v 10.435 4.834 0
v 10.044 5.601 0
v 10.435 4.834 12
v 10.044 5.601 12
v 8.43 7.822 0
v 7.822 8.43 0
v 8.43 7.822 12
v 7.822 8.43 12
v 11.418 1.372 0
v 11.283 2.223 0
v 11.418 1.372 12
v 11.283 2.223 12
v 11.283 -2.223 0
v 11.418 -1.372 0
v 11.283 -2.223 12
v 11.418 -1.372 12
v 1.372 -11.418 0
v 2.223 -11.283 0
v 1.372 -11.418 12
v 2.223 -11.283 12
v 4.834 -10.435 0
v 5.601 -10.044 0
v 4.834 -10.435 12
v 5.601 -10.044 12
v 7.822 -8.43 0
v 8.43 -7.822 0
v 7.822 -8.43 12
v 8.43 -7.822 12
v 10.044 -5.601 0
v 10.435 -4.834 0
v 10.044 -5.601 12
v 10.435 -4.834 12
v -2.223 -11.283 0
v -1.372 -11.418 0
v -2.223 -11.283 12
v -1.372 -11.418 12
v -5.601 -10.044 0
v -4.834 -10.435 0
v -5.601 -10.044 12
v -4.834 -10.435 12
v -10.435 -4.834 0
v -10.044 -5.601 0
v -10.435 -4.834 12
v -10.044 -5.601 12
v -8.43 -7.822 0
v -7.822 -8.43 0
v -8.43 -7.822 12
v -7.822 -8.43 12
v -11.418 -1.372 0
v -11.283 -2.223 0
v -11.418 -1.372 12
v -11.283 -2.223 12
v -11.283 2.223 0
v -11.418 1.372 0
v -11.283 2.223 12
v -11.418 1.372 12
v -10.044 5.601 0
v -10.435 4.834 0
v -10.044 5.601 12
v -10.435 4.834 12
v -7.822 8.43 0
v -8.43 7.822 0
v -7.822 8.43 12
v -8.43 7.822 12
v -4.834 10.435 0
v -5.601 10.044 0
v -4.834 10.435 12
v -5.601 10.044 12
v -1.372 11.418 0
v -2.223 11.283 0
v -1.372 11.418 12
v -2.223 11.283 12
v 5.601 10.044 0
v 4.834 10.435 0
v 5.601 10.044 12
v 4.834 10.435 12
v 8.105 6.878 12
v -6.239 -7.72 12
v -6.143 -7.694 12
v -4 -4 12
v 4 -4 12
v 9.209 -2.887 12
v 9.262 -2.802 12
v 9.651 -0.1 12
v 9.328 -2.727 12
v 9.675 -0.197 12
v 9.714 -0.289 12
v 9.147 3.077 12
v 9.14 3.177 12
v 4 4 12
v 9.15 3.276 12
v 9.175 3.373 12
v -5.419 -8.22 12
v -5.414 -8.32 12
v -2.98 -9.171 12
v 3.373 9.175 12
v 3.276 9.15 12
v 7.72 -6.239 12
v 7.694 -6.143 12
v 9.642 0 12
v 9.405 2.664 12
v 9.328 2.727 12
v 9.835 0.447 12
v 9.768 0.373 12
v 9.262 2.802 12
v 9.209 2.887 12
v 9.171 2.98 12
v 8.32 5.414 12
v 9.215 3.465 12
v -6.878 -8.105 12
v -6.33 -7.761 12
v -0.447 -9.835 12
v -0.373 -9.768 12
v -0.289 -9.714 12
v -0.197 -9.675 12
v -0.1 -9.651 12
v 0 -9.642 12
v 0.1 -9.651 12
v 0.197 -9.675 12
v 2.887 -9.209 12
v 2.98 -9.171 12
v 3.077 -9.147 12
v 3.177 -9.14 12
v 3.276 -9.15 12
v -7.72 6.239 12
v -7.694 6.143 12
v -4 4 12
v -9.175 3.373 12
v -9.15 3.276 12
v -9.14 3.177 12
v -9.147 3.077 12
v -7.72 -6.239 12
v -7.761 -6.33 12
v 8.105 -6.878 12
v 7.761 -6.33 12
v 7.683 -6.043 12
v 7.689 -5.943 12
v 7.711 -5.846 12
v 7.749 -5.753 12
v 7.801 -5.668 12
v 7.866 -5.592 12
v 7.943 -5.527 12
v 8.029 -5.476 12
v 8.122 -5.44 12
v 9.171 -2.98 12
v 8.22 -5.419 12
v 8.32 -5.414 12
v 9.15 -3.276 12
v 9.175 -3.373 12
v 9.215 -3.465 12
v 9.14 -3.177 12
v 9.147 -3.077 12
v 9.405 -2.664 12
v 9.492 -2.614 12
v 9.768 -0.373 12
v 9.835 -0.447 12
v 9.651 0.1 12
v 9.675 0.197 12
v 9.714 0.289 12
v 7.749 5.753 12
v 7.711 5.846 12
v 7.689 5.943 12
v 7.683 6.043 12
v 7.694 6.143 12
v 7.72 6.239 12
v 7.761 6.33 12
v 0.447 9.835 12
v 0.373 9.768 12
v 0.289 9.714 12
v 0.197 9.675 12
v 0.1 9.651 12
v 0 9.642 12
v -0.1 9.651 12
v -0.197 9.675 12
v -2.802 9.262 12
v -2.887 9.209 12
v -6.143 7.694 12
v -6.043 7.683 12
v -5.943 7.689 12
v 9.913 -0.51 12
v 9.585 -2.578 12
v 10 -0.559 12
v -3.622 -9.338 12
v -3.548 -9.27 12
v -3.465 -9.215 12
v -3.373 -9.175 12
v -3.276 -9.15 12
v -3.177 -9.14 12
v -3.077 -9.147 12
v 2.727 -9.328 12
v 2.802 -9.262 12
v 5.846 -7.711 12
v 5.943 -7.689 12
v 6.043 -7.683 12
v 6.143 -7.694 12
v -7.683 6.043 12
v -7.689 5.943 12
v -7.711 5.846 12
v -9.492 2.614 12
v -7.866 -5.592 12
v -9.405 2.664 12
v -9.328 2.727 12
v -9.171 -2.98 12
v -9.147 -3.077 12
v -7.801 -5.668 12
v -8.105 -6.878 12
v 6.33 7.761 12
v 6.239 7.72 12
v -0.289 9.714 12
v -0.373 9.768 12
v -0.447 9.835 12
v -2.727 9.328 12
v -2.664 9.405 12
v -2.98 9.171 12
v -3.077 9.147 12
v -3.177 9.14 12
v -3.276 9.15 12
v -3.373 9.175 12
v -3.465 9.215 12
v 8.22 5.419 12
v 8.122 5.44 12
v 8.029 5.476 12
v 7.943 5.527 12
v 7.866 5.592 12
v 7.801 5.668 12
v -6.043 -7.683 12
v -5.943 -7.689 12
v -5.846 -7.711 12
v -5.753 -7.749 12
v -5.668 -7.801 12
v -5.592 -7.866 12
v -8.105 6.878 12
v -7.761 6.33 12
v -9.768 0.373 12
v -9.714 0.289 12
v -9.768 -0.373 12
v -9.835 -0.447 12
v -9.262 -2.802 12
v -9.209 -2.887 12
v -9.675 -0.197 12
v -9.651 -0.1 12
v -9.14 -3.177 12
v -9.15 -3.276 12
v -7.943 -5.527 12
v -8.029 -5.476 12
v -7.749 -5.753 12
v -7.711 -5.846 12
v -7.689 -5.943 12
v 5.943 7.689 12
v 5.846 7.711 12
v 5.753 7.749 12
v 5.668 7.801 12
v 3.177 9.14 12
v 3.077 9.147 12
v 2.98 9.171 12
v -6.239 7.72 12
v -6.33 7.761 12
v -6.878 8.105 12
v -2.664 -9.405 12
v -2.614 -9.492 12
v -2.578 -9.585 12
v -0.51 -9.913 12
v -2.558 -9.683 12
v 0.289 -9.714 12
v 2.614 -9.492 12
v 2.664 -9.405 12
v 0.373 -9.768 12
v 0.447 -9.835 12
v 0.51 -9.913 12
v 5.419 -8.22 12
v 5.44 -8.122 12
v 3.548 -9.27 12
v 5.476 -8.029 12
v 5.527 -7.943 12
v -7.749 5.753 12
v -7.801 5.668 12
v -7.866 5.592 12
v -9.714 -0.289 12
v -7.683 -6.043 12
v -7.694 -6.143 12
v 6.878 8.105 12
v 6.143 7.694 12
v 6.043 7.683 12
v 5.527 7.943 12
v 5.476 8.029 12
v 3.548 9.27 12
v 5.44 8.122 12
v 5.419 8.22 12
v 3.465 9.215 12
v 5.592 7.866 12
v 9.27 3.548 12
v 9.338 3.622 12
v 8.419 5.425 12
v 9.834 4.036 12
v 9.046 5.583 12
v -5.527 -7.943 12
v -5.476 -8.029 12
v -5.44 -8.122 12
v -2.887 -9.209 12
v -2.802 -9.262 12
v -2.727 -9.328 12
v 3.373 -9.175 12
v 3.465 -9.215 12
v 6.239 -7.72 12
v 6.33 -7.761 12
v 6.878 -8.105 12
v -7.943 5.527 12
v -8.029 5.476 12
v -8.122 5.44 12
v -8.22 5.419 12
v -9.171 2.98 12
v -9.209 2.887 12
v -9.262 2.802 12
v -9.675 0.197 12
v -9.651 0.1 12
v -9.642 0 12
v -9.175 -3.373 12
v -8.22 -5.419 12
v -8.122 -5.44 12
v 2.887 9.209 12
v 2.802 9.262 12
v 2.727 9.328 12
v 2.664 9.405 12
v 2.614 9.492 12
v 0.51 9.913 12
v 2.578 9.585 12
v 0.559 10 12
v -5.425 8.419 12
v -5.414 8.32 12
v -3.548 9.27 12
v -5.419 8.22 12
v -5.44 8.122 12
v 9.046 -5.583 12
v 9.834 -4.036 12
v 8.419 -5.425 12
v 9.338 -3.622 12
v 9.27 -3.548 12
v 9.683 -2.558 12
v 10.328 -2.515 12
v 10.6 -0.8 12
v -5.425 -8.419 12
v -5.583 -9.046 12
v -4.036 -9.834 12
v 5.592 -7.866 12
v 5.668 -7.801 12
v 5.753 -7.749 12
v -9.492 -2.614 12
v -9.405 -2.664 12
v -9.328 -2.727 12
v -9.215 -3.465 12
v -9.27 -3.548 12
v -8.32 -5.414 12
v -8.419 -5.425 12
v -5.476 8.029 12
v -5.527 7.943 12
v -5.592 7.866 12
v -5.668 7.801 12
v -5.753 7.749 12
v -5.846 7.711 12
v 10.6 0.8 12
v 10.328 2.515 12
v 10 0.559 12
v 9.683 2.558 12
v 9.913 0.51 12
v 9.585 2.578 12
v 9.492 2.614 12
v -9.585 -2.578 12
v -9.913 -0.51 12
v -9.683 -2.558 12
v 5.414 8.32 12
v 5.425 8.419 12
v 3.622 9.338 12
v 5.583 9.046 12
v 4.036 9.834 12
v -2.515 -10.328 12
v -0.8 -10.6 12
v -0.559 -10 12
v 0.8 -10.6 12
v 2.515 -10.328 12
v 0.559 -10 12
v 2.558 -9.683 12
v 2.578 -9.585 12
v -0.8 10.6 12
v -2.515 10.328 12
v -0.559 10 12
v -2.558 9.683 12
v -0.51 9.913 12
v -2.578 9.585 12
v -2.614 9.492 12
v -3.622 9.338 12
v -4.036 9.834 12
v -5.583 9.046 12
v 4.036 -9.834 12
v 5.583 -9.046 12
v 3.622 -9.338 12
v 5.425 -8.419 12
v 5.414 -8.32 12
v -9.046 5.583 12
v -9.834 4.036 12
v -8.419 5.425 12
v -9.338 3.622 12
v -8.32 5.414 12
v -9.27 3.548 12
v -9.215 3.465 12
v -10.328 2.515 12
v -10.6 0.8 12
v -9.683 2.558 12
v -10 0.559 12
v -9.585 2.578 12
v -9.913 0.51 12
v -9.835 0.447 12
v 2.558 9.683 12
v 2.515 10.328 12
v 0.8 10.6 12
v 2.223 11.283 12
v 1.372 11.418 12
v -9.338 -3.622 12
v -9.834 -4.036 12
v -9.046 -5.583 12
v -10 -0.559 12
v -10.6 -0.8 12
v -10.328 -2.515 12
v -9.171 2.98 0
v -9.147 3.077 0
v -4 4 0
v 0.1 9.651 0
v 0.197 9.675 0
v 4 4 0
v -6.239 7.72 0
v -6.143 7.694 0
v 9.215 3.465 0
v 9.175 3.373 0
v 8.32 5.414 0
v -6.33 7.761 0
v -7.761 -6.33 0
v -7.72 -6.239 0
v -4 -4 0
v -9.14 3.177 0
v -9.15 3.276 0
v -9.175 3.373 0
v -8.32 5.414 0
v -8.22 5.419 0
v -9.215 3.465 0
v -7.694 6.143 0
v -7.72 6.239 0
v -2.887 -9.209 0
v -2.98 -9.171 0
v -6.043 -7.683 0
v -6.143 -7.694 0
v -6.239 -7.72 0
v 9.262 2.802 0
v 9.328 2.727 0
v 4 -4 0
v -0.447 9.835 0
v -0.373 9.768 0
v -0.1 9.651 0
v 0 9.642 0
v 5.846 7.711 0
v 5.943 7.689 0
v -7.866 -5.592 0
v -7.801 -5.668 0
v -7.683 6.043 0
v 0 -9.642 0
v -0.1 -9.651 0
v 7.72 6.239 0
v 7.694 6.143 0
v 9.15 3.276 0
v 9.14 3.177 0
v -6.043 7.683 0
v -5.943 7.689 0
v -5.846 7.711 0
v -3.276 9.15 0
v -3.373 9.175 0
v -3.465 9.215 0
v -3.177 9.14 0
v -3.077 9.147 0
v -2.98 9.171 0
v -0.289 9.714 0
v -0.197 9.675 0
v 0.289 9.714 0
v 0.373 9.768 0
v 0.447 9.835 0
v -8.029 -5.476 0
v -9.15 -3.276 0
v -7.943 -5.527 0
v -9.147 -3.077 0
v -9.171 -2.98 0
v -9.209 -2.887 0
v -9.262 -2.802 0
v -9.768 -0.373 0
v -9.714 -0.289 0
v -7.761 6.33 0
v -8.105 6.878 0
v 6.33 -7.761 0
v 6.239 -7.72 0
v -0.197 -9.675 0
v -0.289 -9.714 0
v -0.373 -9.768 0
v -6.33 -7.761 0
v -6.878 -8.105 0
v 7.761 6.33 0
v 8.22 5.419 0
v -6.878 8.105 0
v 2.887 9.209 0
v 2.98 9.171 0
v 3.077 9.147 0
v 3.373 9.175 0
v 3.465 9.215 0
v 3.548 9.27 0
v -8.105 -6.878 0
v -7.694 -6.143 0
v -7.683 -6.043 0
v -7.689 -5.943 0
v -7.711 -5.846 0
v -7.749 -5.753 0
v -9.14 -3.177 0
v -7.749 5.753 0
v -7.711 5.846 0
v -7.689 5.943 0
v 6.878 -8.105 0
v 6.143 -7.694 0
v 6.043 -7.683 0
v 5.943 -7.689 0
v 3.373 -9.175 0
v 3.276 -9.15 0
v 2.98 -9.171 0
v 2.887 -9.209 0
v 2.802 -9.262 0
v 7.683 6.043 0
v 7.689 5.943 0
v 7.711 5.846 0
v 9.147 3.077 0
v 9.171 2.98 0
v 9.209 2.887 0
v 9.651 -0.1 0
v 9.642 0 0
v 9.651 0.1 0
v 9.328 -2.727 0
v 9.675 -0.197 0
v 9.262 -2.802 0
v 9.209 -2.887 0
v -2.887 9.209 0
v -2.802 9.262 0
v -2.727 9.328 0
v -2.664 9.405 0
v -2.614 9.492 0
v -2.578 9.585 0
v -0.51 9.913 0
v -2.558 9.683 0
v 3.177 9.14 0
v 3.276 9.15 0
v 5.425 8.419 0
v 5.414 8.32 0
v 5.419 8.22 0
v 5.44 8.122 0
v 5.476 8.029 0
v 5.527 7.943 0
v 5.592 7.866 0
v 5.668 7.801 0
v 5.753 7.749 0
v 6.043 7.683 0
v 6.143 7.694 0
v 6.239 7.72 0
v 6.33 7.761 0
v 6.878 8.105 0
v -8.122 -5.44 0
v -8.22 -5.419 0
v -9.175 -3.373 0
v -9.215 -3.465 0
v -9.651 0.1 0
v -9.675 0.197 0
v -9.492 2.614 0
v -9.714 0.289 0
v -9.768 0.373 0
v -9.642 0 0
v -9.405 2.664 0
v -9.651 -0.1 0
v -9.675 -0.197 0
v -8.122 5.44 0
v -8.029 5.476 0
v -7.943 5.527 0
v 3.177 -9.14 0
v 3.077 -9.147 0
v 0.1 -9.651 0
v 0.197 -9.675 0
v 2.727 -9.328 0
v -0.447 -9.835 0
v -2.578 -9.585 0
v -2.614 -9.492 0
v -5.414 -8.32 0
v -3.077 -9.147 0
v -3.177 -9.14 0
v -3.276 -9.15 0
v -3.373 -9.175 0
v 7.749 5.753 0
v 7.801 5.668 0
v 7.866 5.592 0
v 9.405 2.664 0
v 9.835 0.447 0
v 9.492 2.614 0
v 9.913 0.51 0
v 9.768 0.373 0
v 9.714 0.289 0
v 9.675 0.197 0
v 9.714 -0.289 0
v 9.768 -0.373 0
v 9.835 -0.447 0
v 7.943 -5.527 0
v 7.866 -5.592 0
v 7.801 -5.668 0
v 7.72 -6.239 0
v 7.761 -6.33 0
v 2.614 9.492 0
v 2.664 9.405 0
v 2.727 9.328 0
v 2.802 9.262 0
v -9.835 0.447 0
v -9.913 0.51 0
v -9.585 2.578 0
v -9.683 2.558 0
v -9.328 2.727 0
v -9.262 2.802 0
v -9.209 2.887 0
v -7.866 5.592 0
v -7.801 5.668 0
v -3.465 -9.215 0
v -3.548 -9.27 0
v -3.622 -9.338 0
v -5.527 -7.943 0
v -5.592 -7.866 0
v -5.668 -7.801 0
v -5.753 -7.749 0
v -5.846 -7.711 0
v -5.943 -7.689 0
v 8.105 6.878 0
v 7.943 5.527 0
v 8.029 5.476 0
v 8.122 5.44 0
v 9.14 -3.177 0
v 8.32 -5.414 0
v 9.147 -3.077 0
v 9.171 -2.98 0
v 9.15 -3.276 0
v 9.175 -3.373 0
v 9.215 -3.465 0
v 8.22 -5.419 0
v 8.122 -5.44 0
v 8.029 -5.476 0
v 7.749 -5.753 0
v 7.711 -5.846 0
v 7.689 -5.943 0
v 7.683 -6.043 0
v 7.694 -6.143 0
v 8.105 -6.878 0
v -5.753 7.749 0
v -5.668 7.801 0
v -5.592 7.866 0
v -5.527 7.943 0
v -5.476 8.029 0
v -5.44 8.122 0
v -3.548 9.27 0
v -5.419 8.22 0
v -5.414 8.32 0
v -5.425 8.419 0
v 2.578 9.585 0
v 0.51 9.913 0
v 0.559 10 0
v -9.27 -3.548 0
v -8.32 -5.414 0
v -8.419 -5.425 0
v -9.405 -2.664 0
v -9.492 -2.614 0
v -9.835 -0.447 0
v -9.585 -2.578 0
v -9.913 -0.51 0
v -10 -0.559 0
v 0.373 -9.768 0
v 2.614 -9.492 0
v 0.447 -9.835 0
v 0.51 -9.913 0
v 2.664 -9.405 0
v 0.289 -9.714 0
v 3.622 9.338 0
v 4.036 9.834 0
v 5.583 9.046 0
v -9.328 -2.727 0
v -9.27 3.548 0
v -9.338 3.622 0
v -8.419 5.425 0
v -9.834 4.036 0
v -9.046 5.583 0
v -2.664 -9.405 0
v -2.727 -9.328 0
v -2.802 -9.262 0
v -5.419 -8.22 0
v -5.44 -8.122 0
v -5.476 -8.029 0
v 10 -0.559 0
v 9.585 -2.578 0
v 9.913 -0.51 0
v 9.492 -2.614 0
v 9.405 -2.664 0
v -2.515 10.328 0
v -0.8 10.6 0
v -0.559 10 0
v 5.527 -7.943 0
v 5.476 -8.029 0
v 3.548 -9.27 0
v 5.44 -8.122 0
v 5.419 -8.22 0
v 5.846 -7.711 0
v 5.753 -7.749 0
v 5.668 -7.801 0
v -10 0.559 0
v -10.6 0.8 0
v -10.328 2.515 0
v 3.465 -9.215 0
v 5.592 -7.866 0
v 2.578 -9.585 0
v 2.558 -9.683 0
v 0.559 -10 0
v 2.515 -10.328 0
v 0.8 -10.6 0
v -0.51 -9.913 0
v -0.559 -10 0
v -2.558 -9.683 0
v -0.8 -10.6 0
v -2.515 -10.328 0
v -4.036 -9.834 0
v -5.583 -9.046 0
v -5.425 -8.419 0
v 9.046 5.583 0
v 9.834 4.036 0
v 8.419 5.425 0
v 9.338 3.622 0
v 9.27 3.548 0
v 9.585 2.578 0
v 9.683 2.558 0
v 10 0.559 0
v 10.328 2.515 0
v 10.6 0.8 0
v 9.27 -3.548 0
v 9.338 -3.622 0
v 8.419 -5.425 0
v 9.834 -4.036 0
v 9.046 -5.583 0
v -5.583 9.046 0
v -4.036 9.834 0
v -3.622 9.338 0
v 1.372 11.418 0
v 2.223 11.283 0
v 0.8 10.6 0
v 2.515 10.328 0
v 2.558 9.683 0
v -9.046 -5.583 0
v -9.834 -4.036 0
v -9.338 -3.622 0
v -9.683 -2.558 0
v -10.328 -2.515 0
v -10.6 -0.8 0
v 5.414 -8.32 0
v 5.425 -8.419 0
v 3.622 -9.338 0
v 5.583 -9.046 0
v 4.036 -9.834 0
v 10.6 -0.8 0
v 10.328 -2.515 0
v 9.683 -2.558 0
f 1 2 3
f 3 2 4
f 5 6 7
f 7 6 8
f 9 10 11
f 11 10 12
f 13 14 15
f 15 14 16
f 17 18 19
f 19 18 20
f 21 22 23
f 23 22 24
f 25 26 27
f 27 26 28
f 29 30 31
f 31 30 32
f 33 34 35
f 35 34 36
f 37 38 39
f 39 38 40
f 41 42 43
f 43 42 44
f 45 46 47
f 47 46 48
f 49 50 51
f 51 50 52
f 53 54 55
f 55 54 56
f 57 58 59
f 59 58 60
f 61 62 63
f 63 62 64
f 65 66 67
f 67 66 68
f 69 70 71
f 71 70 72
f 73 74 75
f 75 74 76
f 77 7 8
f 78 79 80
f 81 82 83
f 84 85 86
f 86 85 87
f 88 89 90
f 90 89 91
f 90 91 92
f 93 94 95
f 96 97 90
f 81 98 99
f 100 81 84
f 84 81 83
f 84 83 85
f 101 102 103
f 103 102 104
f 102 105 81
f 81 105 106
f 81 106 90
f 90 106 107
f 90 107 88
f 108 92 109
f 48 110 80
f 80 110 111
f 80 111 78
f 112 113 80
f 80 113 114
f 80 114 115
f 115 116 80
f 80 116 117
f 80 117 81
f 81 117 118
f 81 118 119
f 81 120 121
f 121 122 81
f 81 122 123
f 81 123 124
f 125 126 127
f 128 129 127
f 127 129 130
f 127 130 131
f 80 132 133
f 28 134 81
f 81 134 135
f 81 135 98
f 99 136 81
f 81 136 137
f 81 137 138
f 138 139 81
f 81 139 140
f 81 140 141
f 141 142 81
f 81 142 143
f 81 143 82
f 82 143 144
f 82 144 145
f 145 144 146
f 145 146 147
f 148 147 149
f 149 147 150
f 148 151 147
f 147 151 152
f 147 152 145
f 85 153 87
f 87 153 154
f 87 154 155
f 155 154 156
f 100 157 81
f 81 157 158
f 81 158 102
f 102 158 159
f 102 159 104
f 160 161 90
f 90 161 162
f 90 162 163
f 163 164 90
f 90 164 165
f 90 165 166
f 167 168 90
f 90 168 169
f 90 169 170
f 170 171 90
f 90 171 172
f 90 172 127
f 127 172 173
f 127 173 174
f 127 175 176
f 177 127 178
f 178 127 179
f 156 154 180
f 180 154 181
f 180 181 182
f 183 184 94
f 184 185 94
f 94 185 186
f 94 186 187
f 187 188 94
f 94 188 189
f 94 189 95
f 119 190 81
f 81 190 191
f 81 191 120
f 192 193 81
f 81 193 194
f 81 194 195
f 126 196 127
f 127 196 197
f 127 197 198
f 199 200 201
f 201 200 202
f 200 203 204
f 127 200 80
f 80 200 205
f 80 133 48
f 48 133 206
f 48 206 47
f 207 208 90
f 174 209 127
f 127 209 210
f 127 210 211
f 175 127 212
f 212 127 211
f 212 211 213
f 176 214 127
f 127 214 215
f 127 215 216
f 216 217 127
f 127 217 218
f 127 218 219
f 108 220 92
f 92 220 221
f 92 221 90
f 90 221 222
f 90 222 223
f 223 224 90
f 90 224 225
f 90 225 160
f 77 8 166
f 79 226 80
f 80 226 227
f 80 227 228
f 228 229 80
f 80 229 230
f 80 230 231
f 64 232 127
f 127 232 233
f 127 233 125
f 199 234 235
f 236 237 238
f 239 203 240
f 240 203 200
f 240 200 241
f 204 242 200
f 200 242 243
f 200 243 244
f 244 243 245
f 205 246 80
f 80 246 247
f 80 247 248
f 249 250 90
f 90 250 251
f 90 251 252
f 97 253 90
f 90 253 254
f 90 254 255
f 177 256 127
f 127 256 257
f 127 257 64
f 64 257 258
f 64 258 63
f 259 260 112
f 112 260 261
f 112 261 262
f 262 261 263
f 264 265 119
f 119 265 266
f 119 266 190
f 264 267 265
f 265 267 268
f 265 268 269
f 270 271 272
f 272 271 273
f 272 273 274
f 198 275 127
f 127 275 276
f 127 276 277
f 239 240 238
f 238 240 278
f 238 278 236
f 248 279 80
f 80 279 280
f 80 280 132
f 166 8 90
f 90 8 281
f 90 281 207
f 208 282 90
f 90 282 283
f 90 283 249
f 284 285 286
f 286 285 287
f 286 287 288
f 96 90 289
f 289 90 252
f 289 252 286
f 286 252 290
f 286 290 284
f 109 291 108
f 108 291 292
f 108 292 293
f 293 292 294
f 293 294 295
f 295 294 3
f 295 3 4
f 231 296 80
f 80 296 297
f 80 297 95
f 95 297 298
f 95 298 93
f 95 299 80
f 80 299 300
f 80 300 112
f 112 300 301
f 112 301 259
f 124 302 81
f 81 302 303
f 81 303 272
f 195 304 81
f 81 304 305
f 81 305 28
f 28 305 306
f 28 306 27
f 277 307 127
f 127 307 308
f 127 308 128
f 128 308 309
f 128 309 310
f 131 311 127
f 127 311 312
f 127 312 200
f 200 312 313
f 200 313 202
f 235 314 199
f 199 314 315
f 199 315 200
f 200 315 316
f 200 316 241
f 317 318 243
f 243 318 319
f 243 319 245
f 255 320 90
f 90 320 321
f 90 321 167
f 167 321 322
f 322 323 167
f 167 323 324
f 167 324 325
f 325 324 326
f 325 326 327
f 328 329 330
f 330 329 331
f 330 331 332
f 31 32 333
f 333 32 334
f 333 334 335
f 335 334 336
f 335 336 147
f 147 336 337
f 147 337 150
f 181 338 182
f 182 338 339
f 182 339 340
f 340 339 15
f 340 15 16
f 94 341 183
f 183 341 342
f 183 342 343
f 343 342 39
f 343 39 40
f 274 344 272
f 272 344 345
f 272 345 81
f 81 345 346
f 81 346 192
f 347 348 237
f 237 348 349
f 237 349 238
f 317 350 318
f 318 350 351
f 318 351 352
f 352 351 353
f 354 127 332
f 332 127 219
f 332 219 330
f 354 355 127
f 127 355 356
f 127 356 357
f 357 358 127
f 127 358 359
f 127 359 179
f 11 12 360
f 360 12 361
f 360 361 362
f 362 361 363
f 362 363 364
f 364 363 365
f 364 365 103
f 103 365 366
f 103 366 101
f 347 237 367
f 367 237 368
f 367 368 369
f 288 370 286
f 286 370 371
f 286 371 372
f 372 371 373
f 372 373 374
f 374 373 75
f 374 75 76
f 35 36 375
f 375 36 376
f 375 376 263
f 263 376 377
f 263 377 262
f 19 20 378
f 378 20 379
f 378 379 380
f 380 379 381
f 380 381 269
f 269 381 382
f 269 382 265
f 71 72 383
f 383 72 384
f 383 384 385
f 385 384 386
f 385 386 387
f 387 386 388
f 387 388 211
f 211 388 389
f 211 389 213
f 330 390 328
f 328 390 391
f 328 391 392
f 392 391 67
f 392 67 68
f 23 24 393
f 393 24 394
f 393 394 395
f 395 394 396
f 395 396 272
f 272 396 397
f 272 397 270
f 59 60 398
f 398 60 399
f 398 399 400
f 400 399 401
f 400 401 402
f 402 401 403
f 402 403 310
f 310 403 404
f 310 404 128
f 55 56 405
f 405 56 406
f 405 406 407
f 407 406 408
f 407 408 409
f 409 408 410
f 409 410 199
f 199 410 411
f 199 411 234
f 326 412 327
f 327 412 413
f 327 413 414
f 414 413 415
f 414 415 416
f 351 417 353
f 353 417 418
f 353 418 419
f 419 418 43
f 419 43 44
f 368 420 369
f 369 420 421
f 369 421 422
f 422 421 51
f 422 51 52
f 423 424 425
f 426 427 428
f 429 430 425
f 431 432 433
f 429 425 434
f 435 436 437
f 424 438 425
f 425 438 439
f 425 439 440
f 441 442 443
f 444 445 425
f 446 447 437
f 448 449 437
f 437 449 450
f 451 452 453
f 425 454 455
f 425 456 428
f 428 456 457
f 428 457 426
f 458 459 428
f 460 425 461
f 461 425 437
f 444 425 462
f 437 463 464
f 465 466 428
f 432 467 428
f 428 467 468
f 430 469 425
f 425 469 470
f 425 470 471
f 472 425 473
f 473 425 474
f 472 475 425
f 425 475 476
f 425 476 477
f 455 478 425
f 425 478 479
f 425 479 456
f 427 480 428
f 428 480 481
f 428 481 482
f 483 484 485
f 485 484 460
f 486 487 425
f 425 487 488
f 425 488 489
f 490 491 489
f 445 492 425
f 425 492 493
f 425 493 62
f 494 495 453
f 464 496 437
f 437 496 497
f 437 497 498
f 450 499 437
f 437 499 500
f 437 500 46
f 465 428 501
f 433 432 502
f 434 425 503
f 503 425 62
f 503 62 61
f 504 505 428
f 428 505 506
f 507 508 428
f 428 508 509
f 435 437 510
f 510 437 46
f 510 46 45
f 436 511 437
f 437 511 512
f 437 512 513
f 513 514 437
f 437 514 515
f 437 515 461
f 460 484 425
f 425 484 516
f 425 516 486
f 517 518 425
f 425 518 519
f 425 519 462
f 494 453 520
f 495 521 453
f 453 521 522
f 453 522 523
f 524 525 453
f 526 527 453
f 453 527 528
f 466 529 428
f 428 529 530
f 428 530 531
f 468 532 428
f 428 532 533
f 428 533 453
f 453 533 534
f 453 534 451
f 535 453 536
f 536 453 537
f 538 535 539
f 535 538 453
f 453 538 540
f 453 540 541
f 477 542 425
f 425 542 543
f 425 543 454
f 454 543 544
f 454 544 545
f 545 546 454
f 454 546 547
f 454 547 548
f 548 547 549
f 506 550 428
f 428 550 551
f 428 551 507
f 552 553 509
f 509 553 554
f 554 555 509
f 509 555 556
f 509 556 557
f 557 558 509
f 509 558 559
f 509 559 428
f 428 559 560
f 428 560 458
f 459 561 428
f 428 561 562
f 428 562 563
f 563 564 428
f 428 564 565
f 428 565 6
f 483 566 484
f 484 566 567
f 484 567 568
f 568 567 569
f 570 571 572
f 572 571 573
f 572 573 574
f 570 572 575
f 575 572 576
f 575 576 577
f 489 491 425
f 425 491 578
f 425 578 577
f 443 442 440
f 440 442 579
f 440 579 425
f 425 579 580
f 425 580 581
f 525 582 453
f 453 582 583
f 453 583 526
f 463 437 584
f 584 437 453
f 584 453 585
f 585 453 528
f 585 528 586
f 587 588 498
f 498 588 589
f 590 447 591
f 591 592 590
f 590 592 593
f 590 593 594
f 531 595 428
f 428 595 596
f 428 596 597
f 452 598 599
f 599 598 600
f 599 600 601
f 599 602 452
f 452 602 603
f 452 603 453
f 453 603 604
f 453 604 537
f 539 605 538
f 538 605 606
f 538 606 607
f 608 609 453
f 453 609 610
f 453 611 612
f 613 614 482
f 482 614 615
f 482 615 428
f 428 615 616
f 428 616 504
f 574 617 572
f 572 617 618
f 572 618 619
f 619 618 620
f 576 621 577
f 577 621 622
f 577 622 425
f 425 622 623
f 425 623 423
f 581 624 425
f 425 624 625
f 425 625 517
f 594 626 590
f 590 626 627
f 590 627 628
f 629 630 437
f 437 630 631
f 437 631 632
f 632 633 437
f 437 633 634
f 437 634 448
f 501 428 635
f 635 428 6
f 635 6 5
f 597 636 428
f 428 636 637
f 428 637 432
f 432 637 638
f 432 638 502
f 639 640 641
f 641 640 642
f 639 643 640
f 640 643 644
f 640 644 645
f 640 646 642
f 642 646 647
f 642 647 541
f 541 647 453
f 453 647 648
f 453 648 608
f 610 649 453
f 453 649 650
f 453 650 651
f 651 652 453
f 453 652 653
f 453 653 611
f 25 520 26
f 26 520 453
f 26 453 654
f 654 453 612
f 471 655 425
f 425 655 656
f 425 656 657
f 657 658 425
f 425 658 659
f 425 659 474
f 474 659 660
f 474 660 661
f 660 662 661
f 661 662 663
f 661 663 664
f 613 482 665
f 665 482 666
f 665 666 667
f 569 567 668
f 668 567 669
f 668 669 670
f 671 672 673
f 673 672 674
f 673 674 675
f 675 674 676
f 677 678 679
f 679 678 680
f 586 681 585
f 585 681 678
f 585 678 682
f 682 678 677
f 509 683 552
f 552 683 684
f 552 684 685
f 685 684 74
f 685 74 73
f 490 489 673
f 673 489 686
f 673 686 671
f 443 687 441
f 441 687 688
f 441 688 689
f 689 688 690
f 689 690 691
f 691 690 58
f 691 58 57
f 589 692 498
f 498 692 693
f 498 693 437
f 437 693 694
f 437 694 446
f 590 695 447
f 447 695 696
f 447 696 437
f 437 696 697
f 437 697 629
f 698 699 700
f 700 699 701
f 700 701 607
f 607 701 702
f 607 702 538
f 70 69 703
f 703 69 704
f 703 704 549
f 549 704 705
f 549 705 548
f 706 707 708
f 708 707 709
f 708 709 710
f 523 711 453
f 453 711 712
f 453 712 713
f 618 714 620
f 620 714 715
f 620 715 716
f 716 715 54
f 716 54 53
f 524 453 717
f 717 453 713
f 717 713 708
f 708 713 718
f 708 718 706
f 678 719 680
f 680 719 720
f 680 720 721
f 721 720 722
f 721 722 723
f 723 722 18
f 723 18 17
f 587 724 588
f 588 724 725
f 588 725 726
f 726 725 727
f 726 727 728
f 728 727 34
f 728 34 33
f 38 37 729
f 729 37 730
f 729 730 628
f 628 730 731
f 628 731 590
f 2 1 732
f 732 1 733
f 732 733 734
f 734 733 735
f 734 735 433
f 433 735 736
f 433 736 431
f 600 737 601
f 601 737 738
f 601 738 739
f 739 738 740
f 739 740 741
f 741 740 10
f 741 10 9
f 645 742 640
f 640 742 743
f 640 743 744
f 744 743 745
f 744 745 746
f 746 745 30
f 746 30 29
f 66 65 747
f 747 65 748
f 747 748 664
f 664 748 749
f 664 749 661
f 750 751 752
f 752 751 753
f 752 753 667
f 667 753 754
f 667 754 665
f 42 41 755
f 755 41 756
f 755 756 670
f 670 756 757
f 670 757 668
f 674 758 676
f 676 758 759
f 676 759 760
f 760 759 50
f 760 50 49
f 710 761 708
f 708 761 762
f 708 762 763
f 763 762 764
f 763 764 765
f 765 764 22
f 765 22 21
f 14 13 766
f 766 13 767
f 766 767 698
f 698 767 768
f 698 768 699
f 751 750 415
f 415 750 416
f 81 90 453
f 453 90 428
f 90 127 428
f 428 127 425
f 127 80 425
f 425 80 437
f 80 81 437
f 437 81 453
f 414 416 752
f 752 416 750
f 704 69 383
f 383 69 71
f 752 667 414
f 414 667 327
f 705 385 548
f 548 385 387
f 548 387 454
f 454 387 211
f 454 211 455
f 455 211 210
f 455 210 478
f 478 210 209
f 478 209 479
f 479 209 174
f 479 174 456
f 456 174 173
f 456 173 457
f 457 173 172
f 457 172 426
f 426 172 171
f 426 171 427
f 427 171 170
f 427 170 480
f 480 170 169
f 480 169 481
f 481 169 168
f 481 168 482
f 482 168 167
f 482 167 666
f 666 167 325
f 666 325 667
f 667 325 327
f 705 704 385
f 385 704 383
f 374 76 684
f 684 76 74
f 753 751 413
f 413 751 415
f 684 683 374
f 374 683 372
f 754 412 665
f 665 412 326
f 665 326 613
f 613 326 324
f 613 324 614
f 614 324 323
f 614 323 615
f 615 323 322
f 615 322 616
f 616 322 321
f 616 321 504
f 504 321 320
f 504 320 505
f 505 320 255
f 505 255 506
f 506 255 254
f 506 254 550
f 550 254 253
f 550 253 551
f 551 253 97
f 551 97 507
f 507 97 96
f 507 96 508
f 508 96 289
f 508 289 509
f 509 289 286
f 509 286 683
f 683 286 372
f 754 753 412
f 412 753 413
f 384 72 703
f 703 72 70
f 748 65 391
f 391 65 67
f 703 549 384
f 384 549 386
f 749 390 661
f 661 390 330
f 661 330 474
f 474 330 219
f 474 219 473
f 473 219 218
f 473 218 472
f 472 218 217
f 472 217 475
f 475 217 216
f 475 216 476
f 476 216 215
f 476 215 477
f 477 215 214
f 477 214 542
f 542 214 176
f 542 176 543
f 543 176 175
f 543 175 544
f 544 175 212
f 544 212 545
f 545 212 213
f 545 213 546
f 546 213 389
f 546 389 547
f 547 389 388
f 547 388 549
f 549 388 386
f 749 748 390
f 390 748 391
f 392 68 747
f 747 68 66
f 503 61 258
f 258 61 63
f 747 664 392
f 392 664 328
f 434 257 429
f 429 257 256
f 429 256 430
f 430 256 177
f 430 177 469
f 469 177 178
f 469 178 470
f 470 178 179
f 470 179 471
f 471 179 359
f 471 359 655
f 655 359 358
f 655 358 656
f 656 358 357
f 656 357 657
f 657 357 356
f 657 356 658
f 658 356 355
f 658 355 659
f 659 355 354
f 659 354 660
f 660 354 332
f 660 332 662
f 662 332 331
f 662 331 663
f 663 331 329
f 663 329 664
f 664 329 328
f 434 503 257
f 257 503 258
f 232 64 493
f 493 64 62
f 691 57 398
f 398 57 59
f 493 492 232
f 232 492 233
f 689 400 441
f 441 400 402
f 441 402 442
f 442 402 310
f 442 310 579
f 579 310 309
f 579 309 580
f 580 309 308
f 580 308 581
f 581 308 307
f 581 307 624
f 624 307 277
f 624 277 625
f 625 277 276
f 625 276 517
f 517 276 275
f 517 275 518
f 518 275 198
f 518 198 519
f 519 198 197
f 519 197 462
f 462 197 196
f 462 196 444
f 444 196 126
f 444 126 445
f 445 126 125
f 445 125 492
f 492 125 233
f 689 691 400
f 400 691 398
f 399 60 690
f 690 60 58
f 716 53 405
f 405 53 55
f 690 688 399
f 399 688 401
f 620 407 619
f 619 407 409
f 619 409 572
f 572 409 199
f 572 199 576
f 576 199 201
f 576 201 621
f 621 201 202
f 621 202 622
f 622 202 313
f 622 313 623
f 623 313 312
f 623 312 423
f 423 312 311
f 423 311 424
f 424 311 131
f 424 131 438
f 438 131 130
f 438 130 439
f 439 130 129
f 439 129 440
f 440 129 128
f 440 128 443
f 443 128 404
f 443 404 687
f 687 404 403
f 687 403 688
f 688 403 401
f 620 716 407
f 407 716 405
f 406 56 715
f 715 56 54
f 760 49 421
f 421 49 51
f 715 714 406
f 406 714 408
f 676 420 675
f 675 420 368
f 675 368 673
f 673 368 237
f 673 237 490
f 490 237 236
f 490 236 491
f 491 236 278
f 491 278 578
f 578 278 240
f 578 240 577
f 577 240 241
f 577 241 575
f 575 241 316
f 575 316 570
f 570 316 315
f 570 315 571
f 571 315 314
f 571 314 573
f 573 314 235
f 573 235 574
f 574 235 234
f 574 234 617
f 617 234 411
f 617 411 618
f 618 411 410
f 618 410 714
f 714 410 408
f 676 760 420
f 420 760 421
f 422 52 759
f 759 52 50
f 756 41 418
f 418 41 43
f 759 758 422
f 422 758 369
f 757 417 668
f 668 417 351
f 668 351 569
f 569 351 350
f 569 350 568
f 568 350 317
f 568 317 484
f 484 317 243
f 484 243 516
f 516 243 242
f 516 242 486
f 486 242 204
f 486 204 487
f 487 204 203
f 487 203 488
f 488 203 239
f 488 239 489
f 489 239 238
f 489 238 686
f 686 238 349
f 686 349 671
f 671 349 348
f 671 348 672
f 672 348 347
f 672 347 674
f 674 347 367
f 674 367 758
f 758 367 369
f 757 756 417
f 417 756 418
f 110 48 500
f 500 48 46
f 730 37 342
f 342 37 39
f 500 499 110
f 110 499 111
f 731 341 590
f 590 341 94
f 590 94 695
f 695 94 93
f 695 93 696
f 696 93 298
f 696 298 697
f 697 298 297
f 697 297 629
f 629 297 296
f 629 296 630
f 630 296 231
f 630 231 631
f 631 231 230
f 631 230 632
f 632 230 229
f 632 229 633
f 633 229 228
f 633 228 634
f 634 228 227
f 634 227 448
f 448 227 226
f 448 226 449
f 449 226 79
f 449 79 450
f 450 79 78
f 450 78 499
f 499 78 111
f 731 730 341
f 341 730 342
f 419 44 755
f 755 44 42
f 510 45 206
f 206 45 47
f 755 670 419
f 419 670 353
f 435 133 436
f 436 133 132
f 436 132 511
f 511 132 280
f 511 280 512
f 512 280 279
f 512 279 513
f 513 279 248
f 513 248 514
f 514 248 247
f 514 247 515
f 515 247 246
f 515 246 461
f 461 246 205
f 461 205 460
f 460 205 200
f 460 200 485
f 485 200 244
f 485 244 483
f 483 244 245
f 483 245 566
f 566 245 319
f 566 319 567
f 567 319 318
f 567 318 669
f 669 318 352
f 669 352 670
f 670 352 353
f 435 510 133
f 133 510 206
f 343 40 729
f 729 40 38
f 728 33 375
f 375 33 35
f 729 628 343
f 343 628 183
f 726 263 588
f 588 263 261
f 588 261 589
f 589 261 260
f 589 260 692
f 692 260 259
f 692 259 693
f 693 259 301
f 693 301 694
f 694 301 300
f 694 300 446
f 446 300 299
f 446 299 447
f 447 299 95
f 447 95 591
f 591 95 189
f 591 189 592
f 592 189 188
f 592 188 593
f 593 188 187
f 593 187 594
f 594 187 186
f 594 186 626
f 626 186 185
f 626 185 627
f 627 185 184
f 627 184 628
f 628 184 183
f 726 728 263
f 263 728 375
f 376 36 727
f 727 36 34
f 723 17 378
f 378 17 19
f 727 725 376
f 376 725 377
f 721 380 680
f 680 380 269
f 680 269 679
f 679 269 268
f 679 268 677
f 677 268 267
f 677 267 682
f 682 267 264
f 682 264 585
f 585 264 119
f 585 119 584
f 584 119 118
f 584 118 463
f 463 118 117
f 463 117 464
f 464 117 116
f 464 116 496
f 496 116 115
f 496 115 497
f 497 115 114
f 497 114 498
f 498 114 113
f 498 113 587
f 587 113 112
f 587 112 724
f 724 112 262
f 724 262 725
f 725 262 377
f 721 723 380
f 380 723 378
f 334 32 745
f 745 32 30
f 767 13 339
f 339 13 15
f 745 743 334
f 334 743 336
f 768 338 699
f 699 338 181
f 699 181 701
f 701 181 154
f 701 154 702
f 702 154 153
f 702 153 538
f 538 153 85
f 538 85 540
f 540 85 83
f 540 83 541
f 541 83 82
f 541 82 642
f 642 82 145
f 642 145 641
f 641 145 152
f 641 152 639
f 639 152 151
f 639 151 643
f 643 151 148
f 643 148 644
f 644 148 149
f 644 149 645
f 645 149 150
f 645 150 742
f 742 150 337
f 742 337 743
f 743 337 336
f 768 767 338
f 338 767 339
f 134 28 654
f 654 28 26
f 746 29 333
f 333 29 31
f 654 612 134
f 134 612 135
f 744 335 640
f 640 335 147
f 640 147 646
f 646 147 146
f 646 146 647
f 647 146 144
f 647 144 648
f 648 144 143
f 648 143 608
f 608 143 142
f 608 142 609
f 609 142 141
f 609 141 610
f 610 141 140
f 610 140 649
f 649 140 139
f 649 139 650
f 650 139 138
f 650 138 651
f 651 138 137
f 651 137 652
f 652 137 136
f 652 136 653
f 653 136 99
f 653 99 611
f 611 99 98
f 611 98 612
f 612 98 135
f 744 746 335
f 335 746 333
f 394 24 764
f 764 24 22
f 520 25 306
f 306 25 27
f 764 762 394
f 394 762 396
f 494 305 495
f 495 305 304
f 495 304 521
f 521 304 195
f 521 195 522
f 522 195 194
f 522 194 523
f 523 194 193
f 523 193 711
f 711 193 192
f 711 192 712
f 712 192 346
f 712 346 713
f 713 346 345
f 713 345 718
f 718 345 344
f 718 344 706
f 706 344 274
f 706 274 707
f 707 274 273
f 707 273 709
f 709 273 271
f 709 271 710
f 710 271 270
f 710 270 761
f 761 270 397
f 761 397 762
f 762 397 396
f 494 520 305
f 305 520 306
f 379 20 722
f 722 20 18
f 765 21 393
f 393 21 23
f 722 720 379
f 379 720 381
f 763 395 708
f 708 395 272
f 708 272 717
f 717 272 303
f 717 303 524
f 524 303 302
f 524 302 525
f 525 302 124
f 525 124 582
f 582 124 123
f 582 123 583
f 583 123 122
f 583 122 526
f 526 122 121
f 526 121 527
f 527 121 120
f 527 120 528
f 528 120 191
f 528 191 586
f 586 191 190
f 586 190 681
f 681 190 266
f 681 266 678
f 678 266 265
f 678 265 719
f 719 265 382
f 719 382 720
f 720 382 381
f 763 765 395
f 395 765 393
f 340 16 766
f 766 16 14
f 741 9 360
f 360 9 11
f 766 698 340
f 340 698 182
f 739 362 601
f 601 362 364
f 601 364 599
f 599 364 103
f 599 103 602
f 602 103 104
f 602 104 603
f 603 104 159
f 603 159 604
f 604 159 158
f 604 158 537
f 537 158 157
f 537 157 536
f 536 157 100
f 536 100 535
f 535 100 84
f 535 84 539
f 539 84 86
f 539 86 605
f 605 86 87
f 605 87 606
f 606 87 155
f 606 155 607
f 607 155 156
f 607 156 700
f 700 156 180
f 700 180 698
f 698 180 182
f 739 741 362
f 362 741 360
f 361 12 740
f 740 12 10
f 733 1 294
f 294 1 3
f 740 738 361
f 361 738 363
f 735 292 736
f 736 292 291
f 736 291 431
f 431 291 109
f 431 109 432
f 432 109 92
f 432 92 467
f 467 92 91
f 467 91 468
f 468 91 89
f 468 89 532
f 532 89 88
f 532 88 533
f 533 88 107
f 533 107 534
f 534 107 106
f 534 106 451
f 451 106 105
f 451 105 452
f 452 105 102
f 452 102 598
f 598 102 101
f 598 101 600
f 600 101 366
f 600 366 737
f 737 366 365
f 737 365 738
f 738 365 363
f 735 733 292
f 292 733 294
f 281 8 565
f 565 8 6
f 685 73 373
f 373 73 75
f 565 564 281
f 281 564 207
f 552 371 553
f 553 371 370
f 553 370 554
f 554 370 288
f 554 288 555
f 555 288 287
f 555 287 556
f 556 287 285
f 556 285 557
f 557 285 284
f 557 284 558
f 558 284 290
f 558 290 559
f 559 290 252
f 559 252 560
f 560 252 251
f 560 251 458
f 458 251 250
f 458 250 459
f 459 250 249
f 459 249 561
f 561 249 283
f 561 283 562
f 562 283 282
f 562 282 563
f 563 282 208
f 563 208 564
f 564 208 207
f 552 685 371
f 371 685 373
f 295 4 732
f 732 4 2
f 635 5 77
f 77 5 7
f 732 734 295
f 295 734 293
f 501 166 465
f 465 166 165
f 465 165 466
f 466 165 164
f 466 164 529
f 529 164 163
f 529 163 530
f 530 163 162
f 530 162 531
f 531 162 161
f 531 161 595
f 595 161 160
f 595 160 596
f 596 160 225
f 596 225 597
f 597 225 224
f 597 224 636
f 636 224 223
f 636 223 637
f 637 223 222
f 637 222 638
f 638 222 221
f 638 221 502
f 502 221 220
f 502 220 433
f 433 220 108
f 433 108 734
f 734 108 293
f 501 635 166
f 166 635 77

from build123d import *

# Parameters (mm, degrees)
SKETCH1_R           = 11.5
SKETCH1_W           = 8
SKETCH1_H           = 8
BOSS_EXTRUDE1_DEPTH = 12
CUT_EXTRUDE1_DEPTH  = 12
CIRPATTERN1_COUNT   = 20


with BuildPart() as part:
    # Sketch1 → Boss-Extrude1 (new body)
    with BuildSketch(Plane.XY):
        Circle(SKETCH1_R)
        Rectangle(SKETCH1_W, SKETCH1_H, mode=Mode.SUBTRACT)
    extrude(amount=BOSS_EXTRUDE1_DEPTH)

    # Sketch2 → Cut-Extrude1 (cut)
    with BuildSketch(Plane.XY.offset(12)):
        with BuildLine():
            Line((0, 11.6), (1.5, 11.6))
            Line((1.5, 11.6), (0.8, 10.6))
            Line((0.8, 10.6), (0.559317479, 10))
            ThreePointArc((0.559317479, 10), (0, 9.642447684), (-0.559317479, 10))
            Line((-0.559317479, 10), (-0.8, 10.6))
            Line((-0.8, 10.6), (-1.5, 11.6))
            Line((-1.5, 11.6), (0, 11.6))
        make_face()
    cut_extrude1 = extrude(amount=-CUT_EXTRUDE1_DEPTH, mode=Mode.SUBTRACT)

    # CirPattern1: Cut-Extrude1 ×20 about axis
    cirpattern1_axis = Axis((0, 0, 0), (0, 0, 1))
    for i in range(1, CIRPATTERN1_COUNT):
        add(cut_extrude1.rotate(cirpattern1_axis, i * 360 / CIRPATTERN1_COUNT), mode=Mode.SUBTRACT)


solid = part.part
